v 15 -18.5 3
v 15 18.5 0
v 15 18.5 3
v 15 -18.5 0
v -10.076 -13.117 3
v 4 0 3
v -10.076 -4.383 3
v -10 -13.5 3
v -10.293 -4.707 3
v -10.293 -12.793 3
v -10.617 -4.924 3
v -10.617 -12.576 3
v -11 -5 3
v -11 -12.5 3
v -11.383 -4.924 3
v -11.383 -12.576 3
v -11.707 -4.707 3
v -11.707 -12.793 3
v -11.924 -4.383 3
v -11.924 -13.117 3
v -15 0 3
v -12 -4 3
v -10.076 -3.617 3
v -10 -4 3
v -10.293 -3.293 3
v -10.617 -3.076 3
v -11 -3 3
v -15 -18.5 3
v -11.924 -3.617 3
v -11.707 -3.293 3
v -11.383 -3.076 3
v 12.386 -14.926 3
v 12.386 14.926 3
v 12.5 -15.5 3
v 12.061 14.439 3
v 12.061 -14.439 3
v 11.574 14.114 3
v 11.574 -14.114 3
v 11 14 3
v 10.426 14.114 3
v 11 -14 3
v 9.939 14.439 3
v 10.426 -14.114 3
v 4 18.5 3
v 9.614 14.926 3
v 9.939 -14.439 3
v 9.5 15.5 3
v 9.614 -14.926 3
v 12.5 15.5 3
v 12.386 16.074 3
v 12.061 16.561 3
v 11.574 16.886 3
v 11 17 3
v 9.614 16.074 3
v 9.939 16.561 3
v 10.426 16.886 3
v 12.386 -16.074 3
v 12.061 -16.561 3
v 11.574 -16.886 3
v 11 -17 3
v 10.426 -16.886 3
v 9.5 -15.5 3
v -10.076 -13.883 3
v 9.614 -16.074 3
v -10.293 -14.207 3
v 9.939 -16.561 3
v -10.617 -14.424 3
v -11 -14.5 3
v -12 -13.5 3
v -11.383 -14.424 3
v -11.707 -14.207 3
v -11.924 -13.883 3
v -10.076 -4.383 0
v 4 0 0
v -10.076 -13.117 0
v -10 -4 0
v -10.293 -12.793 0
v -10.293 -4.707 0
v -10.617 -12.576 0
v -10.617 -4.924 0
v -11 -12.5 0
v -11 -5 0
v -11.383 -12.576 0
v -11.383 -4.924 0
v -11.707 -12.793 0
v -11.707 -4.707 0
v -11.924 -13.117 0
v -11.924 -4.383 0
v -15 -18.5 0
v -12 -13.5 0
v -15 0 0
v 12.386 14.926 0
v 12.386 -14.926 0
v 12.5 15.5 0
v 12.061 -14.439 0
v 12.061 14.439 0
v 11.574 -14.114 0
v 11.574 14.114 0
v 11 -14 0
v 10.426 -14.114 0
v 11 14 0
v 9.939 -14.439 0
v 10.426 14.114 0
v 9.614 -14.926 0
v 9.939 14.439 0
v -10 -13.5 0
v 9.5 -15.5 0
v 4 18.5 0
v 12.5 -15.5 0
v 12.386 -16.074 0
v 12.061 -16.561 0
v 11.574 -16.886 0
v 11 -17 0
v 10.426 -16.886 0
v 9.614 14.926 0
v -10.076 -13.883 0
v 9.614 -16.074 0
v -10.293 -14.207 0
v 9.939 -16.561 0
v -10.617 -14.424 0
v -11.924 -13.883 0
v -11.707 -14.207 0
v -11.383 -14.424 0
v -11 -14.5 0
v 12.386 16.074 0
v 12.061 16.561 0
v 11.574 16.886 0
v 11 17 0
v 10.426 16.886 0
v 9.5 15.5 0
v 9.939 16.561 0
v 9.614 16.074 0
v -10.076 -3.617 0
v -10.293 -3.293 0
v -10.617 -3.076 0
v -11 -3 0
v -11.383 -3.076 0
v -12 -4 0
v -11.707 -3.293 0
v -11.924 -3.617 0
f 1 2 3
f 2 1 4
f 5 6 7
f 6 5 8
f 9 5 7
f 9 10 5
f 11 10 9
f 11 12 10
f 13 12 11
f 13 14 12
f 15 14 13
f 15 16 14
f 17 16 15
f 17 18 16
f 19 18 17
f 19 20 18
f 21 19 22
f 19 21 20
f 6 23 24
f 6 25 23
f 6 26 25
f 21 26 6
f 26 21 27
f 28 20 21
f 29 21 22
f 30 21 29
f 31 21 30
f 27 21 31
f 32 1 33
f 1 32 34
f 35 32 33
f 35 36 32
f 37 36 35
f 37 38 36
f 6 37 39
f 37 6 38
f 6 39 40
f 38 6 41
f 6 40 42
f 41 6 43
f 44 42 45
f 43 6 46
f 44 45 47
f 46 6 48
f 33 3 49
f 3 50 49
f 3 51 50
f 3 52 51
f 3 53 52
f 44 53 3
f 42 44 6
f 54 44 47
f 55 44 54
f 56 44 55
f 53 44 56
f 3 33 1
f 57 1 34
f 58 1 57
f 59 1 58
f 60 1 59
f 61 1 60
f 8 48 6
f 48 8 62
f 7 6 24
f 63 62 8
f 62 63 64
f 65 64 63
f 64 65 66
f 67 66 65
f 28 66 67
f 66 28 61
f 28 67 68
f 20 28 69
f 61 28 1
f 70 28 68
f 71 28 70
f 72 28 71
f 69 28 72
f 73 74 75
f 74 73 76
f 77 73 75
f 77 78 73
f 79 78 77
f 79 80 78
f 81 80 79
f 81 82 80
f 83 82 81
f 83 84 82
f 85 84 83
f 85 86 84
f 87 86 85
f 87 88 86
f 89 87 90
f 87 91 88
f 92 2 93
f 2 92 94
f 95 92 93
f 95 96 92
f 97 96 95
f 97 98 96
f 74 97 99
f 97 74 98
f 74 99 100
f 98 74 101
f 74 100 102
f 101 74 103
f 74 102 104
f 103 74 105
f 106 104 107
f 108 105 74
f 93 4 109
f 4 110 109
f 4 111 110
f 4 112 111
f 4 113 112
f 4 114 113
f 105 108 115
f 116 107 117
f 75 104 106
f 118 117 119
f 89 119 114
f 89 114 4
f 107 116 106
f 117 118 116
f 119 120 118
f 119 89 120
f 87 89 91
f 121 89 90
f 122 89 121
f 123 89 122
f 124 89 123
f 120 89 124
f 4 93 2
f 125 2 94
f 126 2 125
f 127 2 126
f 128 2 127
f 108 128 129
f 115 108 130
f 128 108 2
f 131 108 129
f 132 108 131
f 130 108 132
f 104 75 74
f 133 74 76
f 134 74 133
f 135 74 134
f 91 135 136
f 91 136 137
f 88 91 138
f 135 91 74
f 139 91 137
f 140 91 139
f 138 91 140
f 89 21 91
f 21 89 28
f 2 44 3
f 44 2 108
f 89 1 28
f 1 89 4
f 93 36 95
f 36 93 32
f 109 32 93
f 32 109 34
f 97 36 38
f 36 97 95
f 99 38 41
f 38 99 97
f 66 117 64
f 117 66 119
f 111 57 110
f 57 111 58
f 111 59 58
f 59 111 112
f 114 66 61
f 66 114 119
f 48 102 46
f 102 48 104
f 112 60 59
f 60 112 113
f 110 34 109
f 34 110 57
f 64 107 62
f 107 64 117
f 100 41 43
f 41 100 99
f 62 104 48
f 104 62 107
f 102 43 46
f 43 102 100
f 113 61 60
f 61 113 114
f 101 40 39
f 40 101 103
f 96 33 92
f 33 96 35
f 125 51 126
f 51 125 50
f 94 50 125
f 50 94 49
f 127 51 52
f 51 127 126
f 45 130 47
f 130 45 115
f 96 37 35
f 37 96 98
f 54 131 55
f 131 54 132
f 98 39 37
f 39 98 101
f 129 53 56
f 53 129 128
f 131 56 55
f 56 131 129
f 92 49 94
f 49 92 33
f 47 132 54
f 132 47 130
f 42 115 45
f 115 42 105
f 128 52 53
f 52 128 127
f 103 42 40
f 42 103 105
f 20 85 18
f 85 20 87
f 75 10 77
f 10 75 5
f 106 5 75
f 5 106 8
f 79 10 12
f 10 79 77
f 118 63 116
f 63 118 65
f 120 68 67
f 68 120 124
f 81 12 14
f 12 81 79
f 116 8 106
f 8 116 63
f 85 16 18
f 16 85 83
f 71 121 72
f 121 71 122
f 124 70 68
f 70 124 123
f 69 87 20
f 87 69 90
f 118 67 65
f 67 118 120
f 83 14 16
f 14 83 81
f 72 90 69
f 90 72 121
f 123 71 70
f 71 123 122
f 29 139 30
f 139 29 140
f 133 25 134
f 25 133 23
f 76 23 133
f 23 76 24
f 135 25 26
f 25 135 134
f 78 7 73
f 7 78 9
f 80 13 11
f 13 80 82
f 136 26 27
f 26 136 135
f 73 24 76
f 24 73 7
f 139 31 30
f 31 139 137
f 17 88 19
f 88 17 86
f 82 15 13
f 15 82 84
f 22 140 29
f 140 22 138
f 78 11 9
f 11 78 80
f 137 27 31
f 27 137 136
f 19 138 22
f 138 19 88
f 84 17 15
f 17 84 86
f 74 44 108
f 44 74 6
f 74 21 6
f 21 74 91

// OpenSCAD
l=37;
w=30;
h=3;
stepper_hole_dist=31;
limit_hole_dist=9.5;

fn=16;

difference(){
translate([-w/2, -l/2, 0]) cube([w,l,h]);
#translate([w/2-4, -stepper_hole_dist/2, 0]) cylinder(h=8,r=1.5, center=true, $fn=fn);
#translate([w/2-4, stepper_hole_dist/2, 0]) cylinder(h=8,r=1.5, center=true, $fn=fn);
translate([-w/2+4, -l/2+5, 0]) cylinder(h=8,r=1, center=true, $fn=fn);
translate([-w/2+4, -l/2+5+limit_hole_dist, 0]) cylinder(h=8,r=1, center=true, $fn=fn);
translate([-w+4, 0, -1]) cube([w,l,h+2]);
}
